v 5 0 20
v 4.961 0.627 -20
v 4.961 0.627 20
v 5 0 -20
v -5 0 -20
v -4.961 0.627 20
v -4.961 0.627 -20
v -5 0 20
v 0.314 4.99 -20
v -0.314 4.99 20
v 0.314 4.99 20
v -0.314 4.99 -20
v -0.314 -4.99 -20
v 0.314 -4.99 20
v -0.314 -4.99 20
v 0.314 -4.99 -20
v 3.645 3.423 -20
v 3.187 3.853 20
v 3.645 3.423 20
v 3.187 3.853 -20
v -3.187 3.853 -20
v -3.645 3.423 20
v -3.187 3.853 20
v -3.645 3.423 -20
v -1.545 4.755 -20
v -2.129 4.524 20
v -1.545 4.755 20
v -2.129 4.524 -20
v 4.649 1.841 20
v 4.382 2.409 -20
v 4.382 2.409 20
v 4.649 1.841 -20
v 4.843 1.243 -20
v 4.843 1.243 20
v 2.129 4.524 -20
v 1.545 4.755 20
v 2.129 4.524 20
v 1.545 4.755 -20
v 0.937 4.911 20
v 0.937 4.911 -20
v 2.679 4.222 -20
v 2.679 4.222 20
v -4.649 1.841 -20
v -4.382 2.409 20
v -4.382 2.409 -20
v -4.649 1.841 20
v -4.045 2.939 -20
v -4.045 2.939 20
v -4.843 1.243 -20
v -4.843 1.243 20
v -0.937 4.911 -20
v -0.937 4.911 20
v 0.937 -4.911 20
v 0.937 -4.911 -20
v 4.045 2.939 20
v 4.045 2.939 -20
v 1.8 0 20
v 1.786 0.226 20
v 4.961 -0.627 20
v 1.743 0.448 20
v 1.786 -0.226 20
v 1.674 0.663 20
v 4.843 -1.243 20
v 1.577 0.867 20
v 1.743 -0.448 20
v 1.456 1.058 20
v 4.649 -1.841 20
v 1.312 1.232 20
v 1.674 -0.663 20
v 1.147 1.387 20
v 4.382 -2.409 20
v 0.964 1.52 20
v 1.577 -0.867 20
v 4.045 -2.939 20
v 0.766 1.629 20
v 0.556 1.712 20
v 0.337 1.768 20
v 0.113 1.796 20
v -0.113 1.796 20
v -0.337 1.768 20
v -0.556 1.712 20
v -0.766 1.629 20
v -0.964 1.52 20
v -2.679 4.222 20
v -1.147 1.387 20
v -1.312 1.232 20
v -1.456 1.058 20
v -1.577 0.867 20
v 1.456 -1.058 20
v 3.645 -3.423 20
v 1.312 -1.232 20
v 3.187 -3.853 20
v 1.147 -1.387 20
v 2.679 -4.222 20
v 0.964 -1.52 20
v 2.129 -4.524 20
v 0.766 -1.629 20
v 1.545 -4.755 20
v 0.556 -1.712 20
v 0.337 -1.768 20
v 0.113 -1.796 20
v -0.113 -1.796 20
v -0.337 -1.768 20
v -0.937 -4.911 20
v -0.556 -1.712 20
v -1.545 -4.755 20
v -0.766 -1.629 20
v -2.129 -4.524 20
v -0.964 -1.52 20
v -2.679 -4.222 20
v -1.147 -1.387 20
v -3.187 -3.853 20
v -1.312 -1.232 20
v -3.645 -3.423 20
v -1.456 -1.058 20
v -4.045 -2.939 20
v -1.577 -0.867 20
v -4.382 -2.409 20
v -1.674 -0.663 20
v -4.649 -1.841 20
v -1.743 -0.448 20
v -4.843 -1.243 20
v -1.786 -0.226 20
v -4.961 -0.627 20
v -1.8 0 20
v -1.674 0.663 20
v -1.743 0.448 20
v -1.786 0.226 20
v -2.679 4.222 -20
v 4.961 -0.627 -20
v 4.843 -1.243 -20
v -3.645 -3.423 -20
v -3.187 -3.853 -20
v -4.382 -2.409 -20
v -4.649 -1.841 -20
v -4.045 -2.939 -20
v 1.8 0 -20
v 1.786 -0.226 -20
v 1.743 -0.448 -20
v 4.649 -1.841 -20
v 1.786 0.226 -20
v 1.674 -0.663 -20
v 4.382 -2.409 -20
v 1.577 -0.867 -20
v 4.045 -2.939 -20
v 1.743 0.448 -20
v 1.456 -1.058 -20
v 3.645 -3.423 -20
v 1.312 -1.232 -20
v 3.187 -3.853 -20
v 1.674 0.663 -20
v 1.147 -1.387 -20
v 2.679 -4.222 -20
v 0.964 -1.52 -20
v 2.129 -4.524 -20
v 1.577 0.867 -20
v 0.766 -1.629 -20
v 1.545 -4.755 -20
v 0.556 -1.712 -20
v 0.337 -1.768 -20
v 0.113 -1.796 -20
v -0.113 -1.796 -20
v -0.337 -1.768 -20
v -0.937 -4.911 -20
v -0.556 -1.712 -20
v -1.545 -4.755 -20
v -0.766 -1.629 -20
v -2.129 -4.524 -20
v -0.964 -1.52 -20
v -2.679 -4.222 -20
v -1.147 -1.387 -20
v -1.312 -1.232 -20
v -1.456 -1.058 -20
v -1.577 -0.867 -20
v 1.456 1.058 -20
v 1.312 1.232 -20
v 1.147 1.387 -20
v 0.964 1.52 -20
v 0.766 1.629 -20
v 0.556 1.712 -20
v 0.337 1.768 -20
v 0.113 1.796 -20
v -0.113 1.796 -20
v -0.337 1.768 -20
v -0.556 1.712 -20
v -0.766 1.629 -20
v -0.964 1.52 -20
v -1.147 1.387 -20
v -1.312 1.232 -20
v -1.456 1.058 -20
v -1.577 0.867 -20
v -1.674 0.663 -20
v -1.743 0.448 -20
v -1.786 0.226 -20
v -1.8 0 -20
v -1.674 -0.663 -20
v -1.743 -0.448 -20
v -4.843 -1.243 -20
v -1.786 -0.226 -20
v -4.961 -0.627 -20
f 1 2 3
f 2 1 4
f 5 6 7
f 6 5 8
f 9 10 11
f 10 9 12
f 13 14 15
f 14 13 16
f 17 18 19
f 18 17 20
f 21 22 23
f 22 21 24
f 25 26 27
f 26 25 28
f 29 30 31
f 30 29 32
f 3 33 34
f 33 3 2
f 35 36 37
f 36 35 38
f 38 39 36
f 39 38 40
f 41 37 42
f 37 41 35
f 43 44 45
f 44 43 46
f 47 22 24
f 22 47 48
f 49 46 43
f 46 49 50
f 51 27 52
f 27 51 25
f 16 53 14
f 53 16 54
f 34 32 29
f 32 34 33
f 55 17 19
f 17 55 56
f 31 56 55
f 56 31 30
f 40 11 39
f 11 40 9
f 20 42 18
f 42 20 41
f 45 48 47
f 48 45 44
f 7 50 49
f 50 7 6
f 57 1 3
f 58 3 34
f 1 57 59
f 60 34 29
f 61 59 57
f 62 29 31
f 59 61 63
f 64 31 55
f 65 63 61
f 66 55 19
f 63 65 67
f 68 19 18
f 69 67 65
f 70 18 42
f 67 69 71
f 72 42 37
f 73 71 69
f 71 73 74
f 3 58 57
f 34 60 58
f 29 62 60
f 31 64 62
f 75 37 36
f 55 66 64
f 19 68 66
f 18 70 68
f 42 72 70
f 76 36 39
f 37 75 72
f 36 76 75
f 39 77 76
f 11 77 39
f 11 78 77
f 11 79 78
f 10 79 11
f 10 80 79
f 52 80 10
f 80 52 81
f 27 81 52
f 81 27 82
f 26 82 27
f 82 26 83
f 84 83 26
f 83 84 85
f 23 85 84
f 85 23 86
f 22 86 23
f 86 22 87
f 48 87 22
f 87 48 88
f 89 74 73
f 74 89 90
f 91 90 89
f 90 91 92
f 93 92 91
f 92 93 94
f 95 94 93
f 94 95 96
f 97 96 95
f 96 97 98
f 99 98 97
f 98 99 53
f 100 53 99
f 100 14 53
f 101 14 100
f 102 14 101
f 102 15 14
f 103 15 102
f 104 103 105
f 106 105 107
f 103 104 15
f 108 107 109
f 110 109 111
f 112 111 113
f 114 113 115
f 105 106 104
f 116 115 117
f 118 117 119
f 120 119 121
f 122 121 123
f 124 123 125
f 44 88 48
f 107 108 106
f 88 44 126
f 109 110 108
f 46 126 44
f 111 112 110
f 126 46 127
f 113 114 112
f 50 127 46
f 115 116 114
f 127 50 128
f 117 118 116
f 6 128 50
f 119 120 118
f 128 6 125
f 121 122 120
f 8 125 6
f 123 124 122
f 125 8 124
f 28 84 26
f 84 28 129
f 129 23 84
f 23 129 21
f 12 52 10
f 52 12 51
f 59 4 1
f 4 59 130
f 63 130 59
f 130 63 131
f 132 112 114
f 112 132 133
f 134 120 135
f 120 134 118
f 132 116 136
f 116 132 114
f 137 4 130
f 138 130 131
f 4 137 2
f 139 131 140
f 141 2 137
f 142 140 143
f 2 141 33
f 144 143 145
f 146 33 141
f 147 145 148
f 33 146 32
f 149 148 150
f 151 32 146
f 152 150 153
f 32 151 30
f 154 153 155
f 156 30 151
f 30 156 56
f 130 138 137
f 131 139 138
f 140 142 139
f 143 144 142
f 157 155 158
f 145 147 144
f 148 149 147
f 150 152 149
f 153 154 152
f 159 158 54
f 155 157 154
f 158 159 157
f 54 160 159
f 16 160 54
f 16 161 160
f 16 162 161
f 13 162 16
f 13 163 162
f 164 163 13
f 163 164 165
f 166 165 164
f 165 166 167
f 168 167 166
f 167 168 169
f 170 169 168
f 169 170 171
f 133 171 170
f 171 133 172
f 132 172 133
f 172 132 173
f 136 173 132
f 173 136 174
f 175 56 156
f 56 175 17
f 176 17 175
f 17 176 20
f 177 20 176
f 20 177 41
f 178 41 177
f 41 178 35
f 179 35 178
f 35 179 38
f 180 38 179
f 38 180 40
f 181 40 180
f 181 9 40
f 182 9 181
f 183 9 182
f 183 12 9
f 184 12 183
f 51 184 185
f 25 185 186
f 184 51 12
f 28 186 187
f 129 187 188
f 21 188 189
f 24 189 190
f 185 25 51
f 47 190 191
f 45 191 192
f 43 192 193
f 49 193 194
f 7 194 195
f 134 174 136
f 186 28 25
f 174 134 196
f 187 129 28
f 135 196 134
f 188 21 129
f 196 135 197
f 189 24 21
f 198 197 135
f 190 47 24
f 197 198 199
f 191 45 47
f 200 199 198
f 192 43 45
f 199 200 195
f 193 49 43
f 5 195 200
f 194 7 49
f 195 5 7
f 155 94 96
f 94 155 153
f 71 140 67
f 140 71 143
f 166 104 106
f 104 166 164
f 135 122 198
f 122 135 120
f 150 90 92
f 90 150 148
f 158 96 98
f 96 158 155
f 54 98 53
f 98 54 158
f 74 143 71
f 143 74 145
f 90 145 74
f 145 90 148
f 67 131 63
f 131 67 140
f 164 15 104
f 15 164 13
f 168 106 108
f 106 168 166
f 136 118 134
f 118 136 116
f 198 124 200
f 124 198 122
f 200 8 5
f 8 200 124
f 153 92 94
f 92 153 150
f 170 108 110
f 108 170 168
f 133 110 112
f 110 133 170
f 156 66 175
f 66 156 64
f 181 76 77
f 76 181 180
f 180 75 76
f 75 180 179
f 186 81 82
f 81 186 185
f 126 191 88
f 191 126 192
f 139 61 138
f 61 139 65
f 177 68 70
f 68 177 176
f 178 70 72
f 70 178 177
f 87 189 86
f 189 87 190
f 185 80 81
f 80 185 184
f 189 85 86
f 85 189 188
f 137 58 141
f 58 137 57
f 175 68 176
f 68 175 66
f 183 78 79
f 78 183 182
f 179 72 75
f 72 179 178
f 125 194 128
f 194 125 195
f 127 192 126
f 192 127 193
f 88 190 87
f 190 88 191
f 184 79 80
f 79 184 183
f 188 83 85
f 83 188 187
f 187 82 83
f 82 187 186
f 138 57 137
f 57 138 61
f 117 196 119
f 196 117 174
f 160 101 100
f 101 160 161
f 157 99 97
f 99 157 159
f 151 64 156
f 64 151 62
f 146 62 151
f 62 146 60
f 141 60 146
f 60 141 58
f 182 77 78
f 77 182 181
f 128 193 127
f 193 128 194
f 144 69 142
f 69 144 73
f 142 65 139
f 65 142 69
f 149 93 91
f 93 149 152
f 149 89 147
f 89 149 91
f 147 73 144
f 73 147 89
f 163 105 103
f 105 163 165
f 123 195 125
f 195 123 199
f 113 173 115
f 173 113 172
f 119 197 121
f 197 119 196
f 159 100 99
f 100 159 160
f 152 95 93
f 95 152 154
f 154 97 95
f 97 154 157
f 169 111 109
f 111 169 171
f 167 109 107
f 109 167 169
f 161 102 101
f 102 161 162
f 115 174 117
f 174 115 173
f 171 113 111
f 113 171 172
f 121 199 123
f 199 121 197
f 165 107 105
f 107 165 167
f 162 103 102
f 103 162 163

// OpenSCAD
$fn = 50;


difference() {
	union() {
		translate(v = [0, 0, -20.0000000000]) {
			cylinder(h = 40, r = 5.0000000000);
		}
	}
	union() {
		translate(v = [0, 0, -100.0000000000]) {
			cylinder(h = 200, r = 1.8000000000);
		}
	}
}
